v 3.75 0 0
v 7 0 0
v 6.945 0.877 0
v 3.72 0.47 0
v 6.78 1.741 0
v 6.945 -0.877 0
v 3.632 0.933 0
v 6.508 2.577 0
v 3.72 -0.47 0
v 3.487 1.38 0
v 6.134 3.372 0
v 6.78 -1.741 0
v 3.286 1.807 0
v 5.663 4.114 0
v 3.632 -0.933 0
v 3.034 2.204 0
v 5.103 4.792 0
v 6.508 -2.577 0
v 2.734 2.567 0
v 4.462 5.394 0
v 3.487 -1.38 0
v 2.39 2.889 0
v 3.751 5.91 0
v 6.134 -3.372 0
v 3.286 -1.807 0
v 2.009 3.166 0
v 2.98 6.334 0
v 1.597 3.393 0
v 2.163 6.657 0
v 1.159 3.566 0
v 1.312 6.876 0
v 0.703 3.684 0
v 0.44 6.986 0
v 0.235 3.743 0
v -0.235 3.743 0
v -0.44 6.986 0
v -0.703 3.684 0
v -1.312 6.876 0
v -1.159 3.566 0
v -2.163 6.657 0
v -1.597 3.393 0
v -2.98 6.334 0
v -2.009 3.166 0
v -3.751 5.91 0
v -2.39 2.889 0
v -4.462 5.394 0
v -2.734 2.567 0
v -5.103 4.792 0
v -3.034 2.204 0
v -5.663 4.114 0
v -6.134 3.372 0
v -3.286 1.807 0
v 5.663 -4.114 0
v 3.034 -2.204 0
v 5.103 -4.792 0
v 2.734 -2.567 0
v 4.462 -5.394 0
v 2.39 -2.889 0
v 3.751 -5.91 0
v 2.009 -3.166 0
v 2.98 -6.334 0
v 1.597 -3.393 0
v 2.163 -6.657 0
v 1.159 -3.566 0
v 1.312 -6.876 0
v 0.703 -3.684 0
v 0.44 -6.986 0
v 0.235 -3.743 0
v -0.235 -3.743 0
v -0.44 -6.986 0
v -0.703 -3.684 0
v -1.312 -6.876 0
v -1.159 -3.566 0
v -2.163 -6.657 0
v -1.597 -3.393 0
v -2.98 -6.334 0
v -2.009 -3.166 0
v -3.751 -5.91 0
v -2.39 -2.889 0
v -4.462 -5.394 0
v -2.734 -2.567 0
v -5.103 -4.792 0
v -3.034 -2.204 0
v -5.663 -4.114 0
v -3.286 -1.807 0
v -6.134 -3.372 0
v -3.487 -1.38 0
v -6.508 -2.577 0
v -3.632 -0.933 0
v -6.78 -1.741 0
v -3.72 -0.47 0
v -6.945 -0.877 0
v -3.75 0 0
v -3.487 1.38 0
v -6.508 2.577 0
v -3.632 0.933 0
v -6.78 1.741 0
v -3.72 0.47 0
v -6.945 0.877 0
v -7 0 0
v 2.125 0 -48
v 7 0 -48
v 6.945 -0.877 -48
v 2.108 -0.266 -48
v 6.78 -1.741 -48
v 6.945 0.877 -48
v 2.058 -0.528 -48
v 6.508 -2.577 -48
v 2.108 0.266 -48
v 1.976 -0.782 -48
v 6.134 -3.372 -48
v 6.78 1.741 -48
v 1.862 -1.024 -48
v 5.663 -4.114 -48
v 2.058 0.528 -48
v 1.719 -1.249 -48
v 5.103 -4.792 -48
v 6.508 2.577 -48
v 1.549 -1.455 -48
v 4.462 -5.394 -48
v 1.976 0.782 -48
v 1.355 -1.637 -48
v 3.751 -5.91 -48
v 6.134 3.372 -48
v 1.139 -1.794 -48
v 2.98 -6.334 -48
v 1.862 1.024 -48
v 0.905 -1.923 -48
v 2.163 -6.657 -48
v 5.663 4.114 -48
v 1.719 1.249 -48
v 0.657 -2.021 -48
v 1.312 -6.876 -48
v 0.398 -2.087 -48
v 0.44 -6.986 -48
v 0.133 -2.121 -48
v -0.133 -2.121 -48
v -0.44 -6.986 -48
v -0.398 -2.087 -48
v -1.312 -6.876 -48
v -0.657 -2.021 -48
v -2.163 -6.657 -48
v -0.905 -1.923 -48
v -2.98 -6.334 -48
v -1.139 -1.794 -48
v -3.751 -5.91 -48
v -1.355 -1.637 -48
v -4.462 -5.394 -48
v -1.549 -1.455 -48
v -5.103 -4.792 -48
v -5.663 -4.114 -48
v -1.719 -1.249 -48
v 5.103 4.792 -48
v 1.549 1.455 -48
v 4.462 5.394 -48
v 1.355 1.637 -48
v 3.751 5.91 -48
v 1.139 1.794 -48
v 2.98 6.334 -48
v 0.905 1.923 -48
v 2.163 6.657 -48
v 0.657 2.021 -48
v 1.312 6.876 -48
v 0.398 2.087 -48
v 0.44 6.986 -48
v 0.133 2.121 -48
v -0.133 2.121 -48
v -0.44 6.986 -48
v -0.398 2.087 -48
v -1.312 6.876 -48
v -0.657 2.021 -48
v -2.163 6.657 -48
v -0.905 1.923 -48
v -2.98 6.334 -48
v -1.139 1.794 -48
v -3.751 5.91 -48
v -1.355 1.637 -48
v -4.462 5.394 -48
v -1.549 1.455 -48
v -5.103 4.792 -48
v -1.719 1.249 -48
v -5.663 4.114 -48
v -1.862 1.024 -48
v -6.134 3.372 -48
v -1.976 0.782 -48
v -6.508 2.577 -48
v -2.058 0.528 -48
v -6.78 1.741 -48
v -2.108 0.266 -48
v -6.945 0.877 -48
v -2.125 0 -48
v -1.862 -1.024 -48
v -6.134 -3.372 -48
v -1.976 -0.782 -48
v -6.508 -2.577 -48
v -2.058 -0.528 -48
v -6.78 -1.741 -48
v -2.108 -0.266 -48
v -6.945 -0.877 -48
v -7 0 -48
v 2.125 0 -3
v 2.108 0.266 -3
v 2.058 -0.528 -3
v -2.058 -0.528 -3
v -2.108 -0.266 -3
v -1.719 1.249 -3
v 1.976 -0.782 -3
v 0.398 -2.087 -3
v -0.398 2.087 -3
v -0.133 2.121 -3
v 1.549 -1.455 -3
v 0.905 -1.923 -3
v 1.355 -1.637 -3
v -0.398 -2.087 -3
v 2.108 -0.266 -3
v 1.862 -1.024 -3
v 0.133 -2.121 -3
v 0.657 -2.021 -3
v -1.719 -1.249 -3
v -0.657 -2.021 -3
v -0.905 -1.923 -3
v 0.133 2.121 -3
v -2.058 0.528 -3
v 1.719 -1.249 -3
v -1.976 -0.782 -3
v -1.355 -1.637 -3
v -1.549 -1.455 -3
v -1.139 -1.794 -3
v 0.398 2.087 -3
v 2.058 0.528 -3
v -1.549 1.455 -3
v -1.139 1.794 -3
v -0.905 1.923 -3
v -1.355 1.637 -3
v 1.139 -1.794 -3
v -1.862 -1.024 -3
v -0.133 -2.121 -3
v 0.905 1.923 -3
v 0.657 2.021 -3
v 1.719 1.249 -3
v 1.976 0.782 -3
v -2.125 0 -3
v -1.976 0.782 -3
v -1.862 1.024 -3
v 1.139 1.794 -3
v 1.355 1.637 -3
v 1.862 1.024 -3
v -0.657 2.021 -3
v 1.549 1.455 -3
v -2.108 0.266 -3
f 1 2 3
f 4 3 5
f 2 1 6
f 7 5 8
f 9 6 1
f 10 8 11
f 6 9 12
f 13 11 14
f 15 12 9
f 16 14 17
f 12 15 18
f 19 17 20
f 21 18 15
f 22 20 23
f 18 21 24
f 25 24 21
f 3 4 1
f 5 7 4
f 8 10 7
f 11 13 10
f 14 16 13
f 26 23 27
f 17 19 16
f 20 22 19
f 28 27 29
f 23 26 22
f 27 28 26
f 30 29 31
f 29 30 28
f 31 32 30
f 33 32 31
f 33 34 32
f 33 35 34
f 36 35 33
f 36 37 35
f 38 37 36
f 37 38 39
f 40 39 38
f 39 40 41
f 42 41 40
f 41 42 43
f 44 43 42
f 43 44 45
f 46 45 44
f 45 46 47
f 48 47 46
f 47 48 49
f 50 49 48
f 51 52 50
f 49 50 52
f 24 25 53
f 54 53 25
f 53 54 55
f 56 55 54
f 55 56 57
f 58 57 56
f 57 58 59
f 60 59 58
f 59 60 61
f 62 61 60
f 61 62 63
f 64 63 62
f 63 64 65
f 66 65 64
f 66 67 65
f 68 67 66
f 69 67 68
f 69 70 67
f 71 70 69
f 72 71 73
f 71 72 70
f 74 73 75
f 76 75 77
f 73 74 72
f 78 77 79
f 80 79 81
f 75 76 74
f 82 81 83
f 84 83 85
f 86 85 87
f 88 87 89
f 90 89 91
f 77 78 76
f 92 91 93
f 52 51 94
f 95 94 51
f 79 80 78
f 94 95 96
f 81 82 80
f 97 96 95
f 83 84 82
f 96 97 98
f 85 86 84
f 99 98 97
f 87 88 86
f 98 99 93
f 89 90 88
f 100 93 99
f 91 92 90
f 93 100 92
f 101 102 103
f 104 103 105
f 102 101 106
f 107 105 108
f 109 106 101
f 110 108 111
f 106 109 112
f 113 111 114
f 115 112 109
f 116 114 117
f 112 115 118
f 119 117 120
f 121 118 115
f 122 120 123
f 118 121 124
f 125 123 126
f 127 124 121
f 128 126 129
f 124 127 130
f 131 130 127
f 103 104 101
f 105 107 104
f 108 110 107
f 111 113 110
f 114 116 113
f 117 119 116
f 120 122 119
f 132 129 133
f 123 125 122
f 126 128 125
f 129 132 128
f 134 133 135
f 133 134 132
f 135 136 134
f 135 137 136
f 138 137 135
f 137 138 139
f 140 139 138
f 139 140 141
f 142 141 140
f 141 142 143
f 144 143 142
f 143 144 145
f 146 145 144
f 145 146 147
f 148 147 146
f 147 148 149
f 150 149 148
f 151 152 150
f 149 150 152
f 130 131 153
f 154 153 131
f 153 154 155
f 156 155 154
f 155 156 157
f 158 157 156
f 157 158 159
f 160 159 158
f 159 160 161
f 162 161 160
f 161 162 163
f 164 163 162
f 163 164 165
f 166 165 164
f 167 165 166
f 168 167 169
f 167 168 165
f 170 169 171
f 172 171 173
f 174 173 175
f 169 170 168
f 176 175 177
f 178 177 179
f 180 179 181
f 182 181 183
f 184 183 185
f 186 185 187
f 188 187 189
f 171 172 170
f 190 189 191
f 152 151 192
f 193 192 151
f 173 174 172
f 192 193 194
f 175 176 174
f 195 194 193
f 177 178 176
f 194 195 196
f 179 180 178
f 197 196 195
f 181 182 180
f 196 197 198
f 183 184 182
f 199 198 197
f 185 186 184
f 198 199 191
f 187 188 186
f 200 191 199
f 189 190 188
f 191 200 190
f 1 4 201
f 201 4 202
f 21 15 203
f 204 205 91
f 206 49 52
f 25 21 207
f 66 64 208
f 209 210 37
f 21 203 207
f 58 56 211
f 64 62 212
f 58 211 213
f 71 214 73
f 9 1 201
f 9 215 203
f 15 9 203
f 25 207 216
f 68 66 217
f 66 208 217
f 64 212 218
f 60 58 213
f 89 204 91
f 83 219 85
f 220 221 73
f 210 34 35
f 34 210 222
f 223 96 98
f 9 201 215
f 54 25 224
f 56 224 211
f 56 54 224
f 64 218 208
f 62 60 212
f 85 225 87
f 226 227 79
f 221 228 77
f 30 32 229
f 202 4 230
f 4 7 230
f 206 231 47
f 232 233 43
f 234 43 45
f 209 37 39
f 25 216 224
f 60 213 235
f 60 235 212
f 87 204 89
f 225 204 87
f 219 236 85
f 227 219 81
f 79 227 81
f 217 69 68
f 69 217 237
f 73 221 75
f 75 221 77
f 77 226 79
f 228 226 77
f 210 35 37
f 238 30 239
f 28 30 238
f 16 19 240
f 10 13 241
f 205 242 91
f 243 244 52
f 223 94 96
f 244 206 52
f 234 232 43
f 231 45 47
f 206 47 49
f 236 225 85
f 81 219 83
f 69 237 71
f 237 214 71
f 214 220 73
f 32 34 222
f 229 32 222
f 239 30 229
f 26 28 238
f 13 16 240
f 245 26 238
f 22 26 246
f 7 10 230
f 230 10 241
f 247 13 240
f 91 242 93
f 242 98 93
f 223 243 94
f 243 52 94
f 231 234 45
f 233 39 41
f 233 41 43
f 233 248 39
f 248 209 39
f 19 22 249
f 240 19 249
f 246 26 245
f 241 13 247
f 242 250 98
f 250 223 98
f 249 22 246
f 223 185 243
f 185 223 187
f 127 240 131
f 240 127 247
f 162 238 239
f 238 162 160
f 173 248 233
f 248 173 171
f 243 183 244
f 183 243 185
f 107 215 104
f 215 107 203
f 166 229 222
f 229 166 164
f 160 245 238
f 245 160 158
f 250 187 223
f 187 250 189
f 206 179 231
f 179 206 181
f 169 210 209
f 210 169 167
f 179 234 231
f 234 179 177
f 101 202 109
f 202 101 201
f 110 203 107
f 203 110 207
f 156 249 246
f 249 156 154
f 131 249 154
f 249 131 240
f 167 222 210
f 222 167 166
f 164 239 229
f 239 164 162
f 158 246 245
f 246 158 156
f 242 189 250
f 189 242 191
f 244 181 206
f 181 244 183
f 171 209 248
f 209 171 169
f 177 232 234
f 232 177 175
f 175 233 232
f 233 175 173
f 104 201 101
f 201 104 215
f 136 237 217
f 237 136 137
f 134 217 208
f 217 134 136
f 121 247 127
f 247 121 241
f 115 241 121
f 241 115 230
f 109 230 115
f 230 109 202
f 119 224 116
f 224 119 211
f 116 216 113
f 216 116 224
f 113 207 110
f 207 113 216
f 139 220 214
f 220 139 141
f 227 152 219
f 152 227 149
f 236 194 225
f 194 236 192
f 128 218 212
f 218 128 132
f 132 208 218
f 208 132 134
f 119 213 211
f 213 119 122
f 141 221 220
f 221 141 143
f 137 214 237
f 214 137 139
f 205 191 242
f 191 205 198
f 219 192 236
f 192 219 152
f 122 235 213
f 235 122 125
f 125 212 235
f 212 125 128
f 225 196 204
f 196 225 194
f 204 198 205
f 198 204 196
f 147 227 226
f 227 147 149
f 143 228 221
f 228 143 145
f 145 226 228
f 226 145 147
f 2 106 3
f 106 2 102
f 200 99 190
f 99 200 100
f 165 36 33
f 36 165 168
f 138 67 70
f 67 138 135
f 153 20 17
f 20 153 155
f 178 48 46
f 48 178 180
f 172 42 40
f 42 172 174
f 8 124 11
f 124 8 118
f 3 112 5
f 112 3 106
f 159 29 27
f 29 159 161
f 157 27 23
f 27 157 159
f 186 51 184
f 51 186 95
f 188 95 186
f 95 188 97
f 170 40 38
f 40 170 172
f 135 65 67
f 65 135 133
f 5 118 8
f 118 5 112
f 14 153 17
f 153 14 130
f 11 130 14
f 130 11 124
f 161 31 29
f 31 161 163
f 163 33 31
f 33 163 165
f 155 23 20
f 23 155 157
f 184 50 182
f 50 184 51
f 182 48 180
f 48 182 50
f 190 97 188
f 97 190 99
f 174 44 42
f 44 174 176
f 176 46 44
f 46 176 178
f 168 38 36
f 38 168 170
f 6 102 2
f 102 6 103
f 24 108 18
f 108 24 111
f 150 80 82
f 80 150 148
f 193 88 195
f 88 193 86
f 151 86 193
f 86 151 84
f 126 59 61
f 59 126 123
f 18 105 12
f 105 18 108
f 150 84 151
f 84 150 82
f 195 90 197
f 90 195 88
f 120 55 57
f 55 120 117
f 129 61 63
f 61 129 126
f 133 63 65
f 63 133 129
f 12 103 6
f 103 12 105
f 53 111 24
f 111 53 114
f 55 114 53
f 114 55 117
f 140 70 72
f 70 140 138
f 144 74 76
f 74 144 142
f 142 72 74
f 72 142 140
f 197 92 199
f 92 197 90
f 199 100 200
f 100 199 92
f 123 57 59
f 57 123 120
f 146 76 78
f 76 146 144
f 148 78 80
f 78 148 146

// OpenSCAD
$fn = 50;


difference() {
	union() {
		translate(v = [0, 0, -48.0000000000]) {
			cylinder(h = 48, r = 7.0000000000);
		}
		cylinder(h = 0, r = 17.0000000000);
	}
	union() {
		translate(v = [0, 0, 0]) {
			rotate(a = [0, 0, 0]) {
				difference() {
					union() {
						#translate(v = [0, 0, -48.0000000000]) {
							cylinder(h = 48, r = 2.0000000000);
						}
						#translate(v = [0, 0, -3]) {
							cylinder(h = 3, r1 = 2.1250000000, r2 = 3.7500000000);
						}
						#translate(v = [0, 0, -48.0000000000]) {
							cylinder(h = 48, r = 2.1250000000);
						}
						#translate(v = [0, 0, -48.0000000000]) {
							cylinder(h = 48, r = 2.0000000000);
						}
					}
					union();
				}
			}
		}
	}
}
